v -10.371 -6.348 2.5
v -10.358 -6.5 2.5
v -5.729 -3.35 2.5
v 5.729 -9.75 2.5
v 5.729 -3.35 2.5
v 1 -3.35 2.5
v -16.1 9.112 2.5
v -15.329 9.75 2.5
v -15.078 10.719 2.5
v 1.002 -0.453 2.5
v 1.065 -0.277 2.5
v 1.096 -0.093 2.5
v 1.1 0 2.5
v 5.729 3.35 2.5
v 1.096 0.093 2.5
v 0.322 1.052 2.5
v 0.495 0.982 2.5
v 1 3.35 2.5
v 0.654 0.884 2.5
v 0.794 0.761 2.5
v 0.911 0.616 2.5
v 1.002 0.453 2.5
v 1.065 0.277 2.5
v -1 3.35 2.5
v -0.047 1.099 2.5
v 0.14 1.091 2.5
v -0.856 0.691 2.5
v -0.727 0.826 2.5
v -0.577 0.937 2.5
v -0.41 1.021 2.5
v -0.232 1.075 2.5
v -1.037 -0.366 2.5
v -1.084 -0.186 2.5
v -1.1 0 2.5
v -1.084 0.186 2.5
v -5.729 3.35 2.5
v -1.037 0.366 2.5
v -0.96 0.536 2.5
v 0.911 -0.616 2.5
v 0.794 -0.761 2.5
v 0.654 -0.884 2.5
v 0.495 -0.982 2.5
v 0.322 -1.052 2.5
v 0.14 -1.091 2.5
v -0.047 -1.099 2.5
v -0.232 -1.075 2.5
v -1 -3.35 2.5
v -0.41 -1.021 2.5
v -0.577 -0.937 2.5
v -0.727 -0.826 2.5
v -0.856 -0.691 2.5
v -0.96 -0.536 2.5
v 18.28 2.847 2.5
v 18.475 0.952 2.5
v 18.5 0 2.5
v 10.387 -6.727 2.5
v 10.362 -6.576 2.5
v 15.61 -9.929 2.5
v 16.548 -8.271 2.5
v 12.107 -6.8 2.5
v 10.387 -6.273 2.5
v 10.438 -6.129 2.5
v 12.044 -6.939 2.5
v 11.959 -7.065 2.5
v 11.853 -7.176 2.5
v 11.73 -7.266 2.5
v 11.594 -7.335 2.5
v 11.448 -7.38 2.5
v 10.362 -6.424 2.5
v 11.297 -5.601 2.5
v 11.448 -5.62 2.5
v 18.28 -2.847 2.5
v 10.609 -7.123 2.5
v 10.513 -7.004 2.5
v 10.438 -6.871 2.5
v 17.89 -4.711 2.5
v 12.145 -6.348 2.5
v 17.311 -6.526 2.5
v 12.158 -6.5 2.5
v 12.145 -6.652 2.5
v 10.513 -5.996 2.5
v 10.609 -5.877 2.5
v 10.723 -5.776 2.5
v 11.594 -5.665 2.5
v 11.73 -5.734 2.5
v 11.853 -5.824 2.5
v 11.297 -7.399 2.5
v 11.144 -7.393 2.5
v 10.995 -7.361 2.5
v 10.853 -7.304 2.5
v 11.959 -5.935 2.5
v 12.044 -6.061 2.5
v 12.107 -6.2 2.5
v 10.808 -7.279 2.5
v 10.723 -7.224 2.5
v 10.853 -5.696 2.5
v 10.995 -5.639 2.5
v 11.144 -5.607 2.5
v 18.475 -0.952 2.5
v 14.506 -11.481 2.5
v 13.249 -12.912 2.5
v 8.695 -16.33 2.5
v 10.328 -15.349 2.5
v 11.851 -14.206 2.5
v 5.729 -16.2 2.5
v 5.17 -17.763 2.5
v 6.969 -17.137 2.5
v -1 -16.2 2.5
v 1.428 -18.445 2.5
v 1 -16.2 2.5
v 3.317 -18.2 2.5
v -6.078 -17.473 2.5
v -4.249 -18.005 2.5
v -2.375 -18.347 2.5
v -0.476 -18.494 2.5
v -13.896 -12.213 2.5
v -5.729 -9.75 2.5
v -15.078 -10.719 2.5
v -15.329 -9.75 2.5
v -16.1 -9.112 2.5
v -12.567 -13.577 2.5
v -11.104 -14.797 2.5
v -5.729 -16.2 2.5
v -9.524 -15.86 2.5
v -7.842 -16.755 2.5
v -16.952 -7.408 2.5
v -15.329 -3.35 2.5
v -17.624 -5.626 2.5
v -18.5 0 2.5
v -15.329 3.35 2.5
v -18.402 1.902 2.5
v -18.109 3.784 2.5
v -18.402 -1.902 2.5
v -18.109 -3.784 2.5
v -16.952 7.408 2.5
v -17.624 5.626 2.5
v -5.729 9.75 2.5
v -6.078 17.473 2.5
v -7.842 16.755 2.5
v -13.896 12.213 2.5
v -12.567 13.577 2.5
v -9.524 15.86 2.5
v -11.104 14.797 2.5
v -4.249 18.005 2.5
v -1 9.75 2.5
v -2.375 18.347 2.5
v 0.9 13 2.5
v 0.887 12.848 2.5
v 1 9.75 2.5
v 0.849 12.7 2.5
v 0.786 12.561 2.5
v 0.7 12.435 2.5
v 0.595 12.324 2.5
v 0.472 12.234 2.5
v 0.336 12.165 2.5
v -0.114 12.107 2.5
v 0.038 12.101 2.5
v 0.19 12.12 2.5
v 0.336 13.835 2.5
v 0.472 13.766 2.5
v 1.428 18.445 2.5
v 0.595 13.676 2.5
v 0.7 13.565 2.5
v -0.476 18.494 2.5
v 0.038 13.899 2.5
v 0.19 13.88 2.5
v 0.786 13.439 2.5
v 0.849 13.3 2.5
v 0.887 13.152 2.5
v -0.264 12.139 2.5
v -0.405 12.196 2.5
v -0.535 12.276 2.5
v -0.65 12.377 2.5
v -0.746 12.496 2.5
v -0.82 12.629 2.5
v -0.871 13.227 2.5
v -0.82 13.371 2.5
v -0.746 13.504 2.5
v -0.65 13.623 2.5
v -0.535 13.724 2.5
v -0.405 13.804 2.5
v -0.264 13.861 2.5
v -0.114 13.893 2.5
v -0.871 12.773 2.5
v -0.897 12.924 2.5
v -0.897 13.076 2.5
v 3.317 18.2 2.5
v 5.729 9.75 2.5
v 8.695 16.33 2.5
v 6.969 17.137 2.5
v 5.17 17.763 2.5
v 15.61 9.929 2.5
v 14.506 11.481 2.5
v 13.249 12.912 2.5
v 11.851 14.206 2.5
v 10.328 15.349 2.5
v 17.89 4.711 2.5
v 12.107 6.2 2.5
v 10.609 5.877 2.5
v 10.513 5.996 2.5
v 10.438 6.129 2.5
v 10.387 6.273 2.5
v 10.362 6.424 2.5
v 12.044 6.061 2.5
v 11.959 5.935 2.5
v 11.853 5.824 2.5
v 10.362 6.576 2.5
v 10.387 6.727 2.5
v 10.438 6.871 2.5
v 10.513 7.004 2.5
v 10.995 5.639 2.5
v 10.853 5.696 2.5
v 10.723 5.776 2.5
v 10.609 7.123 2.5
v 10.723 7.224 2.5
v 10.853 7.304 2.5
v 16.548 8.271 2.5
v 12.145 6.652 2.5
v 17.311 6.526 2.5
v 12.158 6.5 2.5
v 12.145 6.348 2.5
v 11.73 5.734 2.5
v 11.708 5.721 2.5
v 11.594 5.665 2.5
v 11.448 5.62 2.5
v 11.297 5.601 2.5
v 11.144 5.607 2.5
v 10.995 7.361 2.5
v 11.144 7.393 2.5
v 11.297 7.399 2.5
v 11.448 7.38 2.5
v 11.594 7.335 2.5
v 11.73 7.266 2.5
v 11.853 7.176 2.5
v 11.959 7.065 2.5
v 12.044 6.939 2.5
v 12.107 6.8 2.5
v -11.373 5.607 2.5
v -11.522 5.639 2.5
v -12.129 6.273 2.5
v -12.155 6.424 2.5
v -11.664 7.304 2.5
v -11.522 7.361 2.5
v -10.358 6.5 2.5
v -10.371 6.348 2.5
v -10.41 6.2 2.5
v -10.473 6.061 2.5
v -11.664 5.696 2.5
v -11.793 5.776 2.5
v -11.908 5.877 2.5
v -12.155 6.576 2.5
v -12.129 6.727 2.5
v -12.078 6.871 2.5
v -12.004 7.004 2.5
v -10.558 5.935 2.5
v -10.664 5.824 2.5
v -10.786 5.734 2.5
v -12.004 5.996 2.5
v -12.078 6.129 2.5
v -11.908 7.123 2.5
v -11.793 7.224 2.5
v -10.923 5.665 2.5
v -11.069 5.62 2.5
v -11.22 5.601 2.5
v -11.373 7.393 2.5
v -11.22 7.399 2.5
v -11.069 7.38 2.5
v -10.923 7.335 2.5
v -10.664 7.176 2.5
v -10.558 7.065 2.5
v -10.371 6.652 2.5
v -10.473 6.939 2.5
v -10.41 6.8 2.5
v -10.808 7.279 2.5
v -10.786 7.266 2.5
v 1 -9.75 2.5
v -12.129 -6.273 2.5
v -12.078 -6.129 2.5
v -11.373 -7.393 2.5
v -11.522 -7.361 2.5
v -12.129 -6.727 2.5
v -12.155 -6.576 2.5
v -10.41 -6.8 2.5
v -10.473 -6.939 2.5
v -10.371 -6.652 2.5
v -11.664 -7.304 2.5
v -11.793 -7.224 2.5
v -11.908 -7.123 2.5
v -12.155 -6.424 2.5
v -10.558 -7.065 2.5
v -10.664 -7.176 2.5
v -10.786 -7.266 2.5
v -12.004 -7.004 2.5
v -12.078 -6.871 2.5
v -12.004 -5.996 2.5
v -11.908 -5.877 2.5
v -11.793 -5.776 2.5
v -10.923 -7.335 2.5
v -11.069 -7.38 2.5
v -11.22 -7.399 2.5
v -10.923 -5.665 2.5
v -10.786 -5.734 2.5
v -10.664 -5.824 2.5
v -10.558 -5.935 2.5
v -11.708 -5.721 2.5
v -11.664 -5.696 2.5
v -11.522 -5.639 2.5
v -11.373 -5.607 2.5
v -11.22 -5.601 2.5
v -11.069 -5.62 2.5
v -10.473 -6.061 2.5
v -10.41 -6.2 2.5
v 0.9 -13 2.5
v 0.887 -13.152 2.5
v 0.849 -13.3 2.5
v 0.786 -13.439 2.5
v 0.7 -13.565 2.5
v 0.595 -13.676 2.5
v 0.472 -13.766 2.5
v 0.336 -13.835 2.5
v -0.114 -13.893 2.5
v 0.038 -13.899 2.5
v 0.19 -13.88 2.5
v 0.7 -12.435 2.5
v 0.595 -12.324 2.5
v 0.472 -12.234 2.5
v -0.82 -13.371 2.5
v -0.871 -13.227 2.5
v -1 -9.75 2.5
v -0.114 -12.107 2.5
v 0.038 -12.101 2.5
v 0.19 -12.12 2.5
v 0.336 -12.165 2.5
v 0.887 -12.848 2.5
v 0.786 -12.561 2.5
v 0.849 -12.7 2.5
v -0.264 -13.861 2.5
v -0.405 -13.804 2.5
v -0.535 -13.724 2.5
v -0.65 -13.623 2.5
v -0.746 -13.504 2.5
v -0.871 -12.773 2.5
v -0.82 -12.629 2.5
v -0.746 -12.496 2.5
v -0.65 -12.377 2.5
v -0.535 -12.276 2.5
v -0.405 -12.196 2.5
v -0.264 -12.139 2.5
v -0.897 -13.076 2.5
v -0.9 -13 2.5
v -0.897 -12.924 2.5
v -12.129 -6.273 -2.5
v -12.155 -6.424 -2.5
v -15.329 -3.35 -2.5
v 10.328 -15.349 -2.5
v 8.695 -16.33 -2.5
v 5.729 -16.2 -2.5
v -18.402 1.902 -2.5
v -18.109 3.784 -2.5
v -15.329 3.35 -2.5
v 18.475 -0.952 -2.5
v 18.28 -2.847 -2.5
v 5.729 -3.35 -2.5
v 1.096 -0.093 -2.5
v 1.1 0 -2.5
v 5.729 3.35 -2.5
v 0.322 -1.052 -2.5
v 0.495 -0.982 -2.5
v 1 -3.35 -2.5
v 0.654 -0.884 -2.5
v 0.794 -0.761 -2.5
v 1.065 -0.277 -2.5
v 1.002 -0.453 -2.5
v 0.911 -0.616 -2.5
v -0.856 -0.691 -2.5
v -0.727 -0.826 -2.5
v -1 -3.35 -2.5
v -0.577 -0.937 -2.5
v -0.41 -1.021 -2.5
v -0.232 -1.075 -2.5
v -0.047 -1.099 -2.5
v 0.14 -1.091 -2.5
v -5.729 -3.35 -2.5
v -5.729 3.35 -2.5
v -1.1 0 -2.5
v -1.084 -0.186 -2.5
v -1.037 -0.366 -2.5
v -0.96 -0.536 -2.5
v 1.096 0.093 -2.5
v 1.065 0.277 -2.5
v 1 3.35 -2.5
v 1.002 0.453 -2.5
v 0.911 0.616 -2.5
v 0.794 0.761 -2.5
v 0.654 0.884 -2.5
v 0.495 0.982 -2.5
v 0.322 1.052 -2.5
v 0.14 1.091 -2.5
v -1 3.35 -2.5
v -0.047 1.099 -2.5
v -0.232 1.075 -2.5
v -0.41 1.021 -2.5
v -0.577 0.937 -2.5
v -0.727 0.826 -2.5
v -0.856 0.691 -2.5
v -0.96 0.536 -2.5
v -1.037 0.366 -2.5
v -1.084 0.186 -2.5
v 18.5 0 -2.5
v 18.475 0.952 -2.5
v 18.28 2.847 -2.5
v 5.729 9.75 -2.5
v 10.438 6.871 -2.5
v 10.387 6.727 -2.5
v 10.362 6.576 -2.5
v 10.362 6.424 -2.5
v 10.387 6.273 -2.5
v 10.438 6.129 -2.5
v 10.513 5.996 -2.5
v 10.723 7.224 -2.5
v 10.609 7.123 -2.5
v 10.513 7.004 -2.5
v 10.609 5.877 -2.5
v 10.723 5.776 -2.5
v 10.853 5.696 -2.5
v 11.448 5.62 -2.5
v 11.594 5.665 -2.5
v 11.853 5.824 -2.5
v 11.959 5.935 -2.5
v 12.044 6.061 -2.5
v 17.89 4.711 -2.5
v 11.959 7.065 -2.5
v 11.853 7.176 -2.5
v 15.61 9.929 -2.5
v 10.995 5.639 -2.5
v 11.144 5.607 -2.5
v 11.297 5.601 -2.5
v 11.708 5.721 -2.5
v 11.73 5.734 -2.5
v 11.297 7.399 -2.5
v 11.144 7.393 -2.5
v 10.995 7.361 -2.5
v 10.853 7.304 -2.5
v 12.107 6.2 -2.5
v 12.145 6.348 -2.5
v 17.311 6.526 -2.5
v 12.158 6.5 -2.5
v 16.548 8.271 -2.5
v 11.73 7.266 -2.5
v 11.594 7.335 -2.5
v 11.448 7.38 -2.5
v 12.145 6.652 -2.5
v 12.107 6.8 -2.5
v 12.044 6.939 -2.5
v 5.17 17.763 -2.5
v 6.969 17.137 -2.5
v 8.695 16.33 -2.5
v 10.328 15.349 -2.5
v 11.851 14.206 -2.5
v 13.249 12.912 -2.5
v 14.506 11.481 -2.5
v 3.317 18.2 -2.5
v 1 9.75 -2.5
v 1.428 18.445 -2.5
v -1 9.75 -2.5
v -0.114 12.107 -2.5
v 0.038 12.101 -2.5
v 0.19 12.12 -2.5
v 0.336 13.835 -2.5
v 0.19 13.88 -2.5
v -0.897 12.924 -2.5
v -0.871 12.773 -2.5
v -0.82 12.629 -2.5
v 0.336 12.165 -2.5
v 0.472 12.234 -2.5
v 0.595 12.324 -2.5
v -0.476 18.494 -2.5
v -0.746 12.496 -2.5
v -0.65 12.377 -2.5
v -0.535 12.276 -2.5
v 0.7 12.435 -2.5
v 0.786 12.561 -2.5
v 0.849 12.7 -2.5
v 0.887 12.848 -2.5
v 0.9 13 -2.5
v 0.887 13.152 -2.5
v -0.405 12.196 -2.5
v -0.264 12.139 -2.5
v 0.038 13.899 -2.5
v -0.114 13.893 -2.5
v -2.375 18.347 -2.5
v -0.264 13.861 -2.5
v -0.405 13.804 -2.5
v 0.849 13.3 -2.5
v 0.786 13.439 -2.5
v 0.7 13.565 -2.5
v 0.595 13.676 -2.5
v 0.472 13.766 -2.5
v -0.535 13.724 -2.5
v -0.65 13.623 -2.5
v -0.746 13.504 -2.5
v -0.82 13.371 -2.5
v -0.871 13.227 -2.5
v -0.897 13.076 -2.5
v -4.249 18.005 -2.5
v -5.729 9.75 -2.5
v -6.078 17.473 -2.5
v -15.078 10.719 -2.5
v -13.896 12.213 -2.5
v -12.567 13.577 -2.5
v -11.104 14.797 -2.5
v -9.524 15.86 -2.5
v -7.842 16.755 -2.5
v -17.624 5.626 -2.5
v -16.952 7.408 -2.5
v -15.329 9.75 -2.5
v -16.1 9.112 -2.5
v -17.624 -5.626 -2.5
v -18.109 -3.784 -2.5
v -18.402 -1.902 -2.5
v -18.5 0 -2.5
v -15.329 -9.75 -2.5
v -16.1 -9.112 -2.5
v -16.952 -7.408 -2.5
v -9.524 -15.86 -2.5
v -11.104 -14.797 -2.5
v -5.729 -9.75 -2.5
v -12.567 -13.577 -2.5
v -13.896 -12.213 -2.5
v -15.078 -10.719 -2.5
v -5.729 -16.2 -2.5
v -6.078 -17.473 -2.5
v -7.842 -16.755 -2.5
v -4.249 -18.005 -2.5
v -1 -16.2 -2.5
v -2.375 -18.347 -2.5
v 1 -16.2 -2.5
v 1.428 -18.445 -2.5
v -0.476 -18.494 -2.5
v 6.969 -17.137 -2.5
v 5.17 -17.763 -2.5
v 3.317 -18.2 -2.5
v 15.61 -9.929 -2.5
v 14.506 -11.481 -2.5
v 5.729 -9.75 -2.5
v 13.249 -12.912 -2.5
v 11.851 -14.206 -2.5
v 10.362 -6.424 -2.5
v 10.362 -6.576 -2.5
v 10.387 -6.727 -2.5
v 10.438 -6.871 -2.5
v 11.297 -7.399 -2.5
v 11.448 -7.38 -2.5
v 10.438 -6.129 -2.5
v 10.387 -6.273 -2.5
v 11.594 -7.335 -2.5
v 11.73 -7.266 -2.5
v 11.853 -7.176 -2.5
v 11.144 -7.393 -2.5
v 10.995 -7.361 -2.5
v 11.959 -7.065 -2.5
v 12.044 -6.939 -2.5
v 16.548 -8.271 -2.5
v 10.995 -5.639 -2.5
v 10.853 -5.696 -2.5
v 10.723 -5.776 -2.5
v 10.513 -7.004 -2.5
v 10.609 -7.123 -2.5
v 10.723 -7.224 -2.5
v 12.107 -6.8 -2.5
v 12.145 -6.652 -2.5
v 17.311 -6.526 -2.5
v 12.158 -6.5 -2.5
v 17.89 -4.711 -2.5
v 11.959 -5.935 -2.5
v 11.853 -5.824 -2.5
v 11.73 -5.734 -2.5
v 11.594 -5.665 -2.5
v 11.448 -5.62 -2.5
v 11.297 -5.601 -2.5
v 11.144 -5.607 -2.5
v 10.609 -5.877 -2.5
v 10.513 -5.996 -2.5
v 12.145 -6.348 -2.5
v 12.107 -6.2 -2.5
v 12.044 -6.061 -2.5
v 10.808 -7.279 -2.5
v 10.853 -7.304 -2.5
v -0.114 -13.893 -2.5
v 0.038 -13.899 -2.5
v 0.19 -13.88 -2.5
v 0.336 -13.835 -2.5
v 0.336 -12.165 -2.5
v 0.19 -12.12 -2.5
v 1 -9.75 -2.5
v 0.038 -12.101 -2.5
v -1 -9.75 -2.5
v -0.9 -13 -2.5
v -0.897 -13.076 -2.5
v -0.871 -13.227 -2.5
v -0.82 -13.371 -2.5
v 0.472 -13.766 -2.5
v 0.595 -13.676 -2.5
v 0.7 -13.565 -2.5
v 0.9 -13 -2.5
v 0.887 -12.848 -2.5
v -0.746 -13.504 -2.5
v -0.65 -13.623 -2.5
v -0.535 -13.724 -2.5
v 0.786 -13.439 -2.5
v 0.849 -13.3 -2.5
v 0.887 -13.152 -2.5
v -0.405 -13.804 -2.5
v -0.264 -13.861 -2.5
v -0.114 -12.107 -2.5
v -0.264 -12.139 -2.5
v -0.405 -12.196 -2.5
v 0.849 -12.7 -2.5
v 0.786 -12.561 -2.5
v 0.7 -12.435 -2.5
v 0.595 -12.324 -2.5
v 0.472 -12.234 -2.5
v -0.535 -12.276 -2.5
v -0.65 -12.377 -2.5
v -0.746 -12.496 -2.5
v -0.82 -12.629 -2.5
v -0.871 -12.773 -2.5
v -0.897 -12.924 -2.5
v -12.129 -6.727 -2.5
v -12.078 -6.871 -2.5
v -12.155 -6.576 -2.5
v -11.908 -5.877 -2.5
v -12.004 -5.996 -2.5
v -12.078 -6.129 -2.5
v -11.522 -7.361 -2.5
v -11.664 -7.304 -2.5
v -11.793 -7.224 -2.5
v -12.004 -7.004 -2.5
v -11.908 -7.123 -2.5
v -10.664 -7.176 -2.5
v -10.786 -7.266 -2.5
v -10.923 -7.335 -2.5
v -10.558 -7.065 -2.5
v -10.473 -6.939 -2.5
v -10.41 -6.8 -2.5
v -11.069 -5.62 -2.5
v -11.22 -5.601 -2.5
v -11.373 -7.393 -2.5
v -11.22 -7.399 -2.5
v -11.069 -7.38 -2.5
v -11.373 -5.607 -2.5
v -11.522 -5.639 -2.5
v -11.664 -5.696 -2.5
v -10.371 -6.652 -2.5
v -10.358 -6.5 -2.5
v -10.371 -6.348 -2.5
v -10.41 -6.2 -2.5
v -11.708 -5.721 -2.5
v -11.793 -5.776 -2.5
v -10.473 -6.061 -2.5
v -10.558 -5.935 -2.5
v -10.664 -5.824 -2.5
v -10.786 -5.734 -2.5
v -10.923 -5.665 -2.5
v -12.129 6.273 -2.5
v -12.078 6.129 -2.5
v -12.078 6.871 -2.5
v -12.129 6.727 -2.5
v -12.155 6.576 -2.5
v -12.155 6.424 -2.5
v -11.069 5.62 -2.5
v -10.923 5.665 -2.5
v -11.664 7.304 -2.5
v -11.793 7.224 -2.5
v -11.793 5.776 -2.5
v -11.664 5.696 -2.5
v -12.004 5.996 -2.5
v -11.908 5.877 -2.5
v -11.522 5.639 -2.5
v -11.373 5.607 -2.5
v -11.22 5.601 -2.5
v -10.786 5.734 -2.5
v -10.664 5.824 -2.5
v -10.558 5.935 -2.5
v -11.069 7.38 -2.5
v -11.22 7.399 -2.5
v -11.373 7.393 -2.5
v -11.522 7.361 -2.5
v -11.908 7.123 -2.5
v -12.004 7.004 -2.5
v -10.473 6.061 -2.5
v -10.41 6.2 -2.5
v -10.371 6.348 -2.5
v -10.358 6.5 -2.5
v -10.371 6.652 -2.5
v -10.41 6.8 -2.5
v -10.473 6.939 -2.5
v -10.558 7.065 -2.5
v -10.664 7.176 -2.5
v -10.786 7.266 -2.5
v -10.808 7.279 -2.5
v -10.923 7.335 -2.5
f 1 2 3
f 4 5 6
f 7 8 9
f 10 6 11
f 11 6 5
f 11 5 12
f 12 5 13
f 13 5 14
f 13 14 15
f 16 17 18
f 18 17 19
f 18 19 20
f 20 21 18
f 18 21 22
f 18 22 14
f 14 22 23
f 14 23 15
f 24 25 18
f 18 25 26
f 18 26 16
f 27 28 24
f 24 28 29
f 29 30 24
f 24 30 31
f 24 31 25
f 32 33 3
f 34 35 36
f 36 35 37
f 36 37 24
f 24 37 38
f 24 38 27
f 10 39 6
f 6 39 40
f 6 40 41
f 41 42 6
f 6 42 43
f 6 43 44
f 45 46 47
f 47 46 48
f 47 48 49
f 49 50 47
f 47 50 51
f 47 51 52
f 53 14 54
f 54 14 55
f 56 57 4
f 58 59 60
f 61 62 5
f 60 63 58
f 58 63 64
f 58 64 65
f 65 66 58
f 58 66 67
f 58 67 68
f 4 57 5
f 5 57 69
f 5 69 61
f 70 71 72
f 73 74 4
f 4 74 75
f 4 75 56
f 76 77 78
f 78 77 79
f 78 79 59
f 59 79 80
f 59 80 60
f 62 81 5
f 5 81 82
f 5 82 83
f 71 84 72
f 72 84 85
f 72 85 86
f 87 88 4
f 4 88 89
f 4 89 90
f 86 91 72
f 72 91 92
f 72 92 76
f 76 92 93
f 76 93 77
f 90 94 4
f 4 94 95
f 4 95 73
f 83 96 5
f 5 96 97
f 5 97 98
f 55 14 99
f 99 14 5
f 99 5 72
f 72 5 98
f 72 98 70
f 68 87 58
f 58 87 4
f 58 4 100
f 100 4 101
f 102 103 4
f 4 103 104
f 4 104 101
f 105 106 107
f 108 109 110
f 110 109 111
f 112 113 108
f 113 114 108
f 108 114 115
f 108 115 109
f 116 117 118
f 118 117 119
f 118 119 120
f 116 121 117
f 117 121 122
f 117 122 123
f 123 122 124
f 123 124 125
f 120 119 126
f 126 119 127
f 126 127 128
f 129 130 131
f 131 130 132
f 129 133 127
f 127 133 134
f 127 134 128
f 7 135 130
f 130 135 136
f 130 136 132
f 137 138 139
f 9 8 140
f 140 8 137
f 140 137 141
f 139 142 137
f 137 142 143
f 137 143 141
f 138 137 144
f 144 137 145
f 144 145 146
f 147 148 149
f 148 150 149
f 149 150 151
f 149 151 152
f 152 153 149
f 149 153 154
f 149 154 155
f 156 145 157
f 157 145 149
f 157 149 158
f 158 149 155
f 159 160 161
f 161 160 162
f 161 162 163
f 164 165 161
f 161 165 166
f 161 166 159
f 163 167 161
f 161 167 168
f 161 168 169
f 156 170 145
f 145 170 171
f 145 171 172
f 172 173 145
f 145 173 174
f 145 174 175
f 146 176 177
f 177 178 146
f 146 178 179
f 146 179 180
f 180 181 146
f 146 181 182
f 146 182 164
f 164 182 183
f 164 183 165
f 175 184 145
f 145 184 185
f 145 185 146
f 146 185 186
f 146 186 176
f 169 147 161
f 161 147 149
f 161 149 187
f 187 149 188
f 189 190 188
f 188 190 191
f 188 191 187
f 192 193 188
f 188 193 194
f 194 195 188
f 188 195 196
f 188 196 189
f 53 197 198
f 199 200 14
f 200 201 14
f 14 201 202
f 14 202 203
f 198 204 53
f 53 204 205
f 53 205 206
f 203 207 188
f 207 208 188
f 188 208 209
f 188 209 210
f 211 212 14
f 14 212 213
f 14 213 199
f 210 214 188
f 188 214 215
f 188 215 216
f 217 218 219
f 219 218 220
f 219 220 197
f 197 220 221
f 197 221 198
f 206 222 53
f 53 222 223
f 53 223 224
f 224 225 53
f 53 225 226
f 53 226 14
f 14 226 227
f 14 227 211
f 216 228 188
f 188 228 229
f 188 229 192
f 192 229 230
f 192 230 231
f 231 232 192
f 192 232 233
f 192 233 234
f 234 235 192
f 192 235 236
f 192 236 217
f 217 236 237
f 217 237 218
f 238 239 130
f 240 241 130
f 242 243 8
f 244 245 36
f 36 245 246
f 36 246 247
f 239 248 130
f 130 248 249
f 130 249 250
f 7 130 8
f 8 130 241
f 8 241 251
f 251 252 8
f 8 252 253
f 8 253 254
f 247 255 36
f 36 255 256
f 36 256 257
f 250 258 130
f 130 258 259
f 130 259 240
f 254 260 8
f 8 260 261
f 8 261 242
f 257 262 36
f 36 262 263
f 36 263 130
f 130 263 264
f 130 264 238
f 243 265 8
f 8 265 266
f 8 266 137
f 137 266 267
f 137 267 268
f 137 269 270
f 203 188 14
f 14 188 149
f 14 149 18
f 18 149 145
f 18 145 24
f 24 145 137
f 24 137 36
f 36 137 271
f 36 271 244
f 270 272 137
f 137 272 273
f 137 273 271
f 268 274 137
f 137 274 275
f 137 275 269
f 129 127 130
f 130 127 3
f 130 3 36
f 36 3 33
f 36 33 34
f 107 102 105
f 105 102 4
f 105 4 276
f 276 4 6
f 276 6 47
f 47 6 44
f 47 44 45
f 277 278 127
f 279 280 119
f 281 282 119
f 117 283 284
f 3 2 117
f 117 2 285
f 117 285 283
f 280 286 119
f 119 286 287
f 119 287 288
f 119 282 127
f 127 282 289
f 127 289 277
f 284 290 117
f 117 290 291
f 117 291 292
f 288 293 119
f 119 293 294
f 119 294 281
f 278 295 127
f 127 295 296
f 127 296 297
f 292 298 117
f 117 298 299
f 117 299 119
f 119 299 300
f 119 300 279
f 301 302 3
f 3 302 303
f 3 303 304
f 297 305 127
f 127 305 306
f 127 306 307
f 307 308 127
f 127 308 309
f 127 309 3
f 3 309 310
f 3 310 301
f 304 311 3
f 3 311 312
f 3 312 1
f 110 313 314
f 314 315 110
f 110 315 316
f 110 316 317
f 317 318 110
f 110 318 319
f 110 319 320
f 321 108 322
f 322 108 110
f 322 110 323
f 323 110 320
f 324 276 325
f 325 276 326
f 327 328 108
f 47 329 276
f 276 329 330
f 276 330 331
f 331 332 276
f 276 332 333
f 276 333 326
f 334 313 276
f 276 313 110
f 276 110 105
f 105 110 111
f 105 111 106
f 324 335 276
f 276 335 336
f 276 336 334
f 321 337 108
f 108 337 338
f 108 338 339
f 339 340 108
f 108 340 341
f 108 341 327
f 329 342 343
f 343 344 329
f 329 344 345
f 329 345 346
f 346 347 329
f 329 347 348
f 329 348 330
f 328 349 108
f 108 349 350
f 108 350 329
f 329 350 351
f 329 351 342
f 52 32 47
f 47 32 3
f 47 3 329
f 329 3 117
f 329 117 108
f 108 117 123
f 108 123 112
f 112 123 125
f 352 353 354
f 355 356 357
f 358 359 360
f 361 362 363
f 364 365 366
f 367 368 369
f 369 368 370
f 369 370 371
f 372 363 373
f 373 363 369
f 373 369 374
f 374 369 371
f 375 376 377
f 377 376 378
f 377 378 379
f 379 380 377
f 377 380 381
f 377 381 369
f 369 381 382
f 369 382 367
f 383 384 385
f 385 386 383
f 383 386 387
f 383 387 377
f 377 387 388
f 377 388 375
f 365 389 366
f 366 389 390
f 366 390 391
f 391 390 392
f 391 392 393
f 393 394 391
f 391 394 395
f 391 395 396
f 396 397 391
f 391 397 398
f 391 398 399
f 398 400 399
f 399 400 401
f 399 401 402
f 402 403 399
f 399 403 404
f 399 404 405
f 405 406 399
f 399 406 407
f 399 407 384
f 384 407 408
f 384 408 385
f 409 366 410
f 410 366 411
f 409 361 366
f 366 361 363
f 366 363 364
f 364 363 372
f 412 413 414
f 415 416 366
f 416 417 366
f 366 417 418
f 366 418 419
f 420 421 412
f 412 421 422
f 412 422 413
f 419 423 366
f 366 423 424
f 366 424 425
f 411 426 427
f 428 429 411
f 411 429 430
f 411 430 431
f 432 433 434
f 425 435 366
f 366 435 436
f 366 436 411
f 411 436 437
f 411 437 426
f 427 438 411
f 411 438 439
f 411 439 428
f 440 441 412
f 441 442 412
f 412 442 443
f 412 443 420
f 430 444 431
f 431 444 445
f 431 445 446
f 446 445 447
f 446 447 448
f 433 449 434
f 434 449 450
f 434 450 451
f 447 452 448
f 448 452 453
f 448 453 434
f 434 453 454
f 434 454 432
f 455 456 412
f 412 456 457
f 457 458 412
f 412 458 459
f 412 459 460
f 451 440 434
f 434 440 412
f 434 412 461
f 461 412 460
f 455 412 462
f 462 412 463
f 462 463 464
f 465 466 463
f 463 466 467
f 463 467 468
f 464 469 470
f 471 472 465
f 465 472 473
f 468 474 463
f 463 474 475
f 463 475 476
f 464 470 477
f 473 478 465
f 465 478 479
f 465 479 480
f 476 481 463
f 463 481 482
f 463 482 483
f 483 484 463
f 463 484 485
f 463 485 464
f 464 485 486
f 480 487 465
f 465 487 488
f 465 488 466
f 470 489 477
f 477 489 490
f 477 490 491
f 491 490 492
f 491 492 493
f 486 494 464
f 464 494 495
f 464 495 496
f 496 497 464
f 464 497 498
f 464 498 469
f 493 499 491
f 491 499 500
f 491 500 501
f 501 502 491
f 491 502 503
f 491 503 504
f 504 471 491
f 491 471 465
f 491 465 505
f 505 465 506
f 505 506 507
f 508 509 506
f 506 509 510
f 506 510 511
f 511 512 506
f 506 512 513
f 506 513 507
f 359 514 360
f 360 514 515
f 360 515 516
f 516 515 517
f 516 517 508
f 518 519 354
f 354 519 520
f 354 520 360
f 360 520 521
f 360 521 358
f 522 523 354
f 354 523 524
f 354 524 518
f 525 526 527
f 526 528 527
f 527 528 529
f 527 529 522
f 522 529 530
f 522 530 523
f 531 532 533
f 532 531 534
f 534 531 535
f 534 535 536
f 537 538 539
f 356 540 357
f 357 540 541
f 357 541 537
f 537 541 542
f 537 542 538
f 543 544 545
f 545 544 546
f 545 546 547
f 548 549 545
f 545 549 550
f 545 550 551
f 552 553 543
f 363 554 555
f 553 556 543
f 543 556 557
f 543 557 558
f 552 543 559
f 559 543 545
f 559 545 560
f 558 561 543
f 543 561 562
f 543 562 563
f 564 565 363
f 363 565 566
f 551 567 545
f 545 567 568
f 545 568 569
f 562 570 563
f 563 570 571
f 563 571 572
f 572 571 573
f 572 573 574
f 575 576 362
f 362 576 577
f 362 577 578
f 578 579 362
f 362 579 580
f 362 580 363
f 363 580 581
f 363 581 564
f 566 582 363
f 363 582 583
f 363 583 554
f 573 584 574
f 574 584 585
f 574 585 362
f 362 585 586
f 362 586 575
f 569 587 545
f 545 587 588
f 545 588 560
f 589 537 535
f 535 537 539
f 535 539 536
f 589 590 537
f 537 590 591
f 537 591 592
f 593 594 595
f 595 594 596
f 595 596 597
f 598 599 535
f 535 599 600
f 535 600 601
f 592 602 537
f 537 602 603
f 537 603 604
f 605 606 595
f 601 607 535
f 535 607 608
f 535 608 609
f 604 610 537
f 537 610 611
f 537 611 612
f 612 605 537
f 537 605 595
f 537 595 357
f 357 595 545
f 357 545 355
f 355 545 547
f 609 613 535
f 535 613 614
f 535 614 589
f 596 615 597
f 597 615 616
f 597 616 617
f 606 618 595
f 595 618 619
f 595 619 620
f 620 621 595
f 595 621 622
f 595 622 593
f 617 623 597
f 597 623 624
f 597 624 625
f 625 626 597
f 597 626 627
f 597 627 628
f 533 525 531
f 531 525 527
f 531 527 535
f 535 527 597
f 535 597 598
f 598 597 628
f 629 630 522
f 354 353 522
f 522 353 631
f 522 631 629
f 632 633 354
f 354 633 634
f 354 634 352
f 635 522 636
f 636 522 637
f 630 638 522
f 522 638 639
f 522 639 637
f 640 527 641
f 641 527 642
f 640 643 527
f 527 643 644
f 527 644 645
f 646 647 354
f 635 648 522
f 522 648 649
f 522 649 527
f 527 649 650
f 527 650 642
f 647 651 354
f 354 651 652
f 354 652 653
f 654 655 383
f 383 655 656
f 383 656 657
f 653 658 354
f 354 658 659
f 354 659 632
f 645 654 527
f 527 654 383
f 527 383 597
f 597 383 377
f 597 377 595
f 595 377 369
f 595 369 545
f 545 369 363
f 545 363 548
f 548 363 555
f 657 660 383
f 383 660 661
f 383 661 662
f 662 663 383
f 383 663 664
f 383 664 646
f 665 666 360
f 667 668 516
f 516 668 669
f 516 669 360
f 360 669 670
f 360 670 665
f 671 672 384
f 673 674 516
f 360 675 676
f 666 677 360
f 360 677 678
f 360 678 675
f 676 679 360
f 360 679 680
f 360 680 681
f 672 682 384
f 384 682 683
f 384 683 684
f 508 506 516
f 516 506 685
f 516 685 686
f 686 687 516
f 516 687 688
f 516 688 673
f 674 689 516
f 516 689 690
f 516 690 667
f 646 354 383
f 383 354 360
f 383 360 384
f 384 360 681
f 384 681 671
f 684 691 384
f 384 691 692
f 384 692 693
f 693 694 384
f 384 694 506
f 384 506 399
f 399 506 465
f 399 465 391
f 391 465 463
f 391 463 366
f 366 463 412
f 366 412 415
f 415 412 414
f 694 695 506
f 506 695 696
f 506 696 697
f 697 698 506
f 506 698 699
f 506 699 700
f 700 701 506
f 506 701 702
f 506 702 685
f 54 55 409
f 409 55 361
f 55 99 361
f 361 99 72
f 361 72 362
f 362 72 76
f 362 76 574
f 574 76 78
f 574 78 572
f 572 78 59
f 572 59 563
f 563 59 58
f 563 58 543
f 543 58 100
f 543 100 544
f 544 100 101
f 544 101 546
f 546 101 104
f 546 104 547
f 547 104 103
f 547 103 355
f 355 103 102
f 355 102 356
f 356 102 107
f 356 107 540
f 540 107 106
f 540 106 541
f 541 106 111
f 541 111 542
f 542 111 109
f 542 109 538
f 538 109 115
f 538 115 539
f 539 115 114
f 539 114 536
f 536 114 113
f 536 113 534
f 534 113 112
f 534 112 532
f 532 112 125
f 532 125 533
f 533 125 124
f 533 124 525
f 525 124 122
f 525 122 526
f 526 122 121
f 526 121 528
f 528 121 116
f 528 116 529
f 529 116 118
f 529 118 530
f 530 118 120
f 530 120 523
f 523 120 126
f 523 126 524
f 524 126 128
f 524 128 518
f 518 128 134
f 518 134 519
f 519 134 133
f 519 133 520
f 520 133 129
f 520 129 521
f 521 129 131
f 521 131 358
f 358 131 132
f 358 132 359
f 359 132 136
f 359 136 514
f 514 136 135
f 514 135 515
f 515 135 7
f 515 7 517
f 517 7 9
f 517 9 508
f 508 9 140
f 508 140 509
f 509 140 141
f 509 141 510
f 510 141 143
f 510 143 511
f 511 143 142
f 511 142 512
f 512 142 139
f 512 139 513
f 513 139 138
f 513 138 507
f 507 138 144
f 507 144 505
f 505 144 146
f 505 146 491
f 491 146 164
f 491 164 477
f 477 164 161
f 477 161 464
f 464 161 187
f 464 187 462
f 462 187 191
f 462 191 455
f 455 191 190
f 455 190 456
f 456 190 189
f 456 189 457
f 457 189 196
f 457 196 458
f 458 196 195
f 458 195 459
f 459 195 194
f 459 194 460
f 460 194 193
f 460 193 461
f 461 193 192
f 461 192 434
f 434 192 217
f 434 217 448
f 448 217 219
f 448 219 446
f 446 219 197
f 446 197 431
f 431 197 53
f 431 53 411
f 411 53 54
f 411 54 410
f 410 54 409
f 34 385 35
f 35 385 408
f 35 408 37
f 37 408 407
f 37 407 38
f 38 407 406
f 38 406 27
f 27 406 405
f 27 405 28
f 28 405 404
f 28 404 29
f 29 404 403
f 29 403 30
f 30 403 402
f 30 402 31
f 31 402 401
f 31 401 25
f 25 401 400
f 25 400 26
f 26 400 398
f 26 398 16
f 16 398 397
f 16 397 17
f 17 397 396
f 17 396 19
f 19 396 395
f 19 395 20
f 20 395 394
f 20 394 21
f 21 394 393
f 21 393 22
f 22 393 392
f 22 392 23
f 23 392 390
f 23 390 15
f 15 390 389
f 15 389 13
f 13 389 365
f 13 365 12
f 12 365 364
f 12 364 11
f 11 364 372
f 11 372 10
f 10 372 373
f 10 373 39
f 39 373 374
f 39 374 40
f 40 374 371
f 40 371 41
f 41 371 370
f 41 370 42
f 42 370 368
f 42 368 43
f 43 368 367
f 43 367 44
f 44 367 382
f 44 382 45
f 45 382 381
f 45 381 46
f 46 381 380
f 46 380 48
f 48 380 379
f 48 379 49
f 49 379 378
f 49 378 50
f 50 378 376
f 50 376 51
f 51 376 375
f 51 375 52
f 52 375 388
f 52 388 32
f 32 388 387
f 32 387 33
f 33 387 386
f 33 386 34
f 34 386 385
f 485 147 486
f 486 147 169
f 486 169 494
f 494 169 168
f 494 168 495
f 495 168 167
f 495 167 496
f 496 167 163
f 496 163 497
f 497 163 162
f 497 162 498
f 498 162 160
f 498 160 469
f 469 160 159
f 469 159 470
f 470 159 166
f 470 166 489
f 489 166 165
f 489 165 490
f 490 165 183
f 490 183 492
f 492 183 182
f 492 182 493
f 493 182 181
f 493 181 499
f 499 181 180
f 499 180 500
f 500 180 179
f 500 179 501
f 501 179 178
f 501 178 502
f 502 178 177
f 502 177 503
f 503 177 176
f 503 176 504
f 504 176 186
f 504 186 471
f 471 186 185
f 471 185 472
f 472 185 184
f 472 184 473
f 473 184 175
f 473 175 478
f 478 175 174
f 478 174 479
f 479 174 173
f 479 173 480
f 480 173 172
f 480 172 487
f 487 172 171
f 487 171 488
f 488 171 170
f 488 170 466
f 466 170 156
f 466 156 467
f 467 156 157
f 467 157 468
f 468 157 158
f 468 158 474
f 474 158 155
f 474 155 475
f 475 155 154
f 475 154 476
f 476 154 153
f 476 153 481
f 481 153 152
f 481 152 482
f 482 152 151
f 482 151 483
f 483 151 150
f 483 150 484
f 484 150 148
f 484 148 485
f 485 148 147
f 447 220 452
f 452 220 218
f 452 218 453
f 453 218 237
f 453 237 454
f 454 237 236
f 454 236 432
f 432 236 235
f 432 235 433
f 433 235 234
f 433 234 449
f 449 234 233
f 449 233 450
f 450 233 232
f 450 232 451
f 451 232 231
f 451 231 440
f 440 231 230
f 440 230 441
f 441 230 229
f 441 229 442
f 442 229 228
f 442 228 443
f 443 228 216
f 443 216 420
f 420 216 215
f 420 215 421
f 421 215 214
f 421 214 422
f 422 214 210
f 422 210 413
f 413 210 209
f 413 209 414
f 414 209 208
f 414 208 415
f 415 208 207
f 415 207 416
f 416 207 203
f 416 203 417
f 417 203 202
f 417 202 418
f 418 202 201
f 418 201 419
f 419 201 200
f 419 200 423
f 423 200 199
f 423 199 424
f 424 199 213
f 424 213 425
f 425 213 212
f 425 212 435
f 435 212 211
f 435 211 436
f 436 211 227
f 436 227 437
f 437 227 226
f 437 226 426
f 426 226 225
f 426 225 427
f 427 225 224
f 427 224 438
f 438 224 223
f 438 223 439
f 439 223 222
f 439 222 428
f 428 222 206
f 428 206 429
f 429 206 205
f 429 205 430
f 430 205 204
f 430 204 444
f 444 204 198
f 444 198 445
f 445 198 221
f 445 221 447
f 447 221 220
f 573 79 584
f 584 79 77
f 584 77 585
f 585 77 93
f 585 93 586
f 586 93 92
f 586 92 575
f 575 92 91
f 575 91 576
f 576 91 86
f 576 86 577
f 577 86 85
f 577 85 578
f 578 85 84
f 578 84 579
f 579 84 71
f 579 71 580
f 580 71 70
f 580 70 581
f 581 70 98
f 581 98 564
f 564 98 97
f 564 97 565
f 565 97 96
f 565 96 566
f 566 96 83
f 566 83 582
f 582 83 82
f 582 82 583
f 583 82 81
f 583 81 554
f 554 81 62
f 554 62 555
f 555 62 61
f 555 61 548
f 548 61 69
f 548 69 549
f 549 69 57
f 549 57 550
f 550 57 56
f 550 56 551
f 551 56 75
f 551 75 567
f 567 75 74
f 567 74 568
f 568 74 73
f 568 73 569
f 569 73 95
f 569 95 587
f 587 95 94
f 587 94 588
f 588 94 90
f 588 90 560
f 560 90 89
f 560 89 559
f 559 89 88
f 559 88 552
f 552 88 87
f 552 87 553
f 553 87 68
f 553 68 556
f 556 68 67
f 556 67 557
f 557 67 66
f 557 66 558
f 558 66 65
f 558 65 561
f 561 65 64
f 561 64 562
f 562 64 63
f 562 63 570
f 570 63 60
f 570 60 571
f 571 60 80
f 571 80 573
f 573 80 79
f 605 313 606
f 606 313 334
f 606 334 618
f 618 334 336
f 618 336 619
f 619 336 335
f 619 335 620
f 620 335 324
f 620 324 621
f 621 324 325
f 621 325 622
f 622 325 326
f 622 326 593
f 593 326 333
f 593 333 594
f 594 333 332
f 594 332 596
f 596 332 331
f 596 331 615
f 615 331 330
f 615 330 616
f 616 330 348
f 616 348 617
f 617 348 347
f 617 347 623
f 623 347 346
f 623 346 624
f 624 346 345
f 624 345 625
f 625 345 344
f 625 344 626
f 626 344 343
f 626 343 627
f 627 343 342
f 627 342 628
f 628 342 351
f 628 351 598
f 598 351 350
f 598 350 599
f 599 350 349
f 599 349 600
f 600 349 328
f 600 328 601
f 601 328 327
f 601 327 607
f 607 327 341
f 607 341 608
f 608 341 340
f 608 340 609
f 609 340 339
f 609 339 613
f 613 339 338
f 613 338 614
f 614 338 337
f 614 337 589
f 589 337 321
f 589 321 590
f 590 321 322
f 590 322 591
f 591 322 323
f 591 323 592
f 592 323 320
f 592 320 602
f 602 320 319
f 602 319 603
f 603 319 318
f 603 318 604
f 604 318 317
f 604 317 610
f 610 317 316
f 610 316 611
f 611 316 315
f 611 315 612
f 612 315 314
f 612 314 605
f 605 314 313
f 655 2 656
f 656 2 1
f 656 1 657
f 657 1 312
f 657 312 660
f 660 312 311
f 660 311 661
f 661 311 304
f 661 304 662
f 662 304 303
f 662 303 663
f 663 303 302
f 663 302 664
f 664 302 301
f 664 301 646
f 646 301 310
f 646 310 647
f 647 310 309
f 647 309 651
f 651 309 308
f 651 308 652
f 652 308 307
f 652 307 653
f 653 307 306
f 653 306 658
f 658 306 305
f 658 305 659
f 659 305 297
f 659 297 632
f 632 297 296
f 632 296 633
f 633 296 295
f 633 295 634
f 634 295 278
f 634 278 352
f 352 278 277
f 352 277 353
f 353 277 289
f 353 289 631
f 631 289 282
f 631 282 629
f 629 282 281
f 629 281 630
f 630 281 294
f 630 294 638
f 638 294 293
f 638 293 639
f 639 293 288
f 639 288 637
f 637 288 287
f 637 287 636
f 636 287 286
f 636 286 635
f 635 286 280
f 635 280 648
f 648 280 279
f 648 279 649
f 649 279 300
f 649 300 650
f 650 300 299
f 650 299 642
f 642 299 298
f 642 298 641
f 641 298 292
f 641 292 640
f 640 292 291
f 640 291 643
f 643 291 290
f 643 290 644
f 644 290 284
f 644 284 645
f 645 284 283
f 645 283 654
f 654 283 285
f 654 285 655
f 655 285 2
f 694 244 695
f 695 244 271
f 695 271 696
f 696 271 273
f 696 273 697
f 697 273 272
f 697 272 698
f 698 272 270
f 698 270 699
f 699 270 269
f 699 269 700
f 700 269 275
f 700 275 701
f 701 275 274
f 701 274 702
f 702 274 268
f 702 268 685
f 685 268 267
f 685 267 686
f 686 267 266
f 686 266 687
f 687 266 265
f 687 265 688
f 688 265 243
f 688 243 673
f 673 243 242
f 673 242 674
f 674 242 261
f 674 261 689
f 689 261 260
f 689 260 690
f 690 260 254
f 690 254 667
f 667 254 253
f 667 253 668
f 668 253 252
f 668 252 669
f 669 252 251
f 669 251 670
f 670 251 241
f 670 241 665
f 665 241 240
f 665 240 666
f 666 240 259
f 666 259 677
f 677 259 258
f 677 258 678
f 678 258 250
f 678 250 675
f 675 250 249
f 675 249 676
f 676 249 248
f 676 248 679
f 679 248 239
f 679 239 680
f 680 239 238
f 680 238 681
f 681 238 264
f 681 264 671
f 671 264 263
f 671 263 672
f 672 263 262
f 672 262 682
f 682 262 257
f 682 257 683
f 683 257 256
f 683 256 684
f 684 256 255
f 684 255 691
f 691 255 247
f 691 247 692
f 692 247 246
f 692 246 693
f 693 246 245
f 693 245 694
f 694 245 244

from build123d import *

# Parameters (mm, degrees)
SKETCH_1_R               = 18.5
SKETCH_1_R_2             = 1.1
EXTRUDE_1_DEPTH          = 2.5
SKETCH_2_R               = 0.9
CUT_EXTRUDE_1_DEPTH      = 27.636441204
PATTERN_CIRCULAR_1_COUNT = 6


with BuildPart() as part:
    # 草图1 → 凸台-拉伸1 (new, symmetric)
    with BuildSketch(Plane.XY):
        Circle(SKETCH_1_R)
        Circle(SKETCH_1_R_2, mode=Mode.SUBTRACT)
    extrude(amount=EXTRUDE_1_DEPTH, both=True)

    # 草图2 → 切除-拉伸1 (cut, through all)
    with BuildSketch(Plane.XY.offset(2.5)):
        with Locations((0, 13)):
            Circle(SKETCH_2_R)
    cut_extrude_1 = extrude(amount=-CUT_EXTRUDE_1_DEPTH, mode=Mode.SUBTRACT)

    # 阵列(圆周)1: 切除-拉伸1 ×6 about axis
    pattern_circular_1_axis = Axis((0, 0, 0), (0, 0, 1))
    for i in range(1, PATTERN_CIRCULAR_1_COUNT):
        add(cut_extrude_1.rotate(pattern_circular_1_axis, i * 360 / PATTERN_CIRCULAR_1_COUNT), mode=Mode.SUBTRACT)


solid = part.part
